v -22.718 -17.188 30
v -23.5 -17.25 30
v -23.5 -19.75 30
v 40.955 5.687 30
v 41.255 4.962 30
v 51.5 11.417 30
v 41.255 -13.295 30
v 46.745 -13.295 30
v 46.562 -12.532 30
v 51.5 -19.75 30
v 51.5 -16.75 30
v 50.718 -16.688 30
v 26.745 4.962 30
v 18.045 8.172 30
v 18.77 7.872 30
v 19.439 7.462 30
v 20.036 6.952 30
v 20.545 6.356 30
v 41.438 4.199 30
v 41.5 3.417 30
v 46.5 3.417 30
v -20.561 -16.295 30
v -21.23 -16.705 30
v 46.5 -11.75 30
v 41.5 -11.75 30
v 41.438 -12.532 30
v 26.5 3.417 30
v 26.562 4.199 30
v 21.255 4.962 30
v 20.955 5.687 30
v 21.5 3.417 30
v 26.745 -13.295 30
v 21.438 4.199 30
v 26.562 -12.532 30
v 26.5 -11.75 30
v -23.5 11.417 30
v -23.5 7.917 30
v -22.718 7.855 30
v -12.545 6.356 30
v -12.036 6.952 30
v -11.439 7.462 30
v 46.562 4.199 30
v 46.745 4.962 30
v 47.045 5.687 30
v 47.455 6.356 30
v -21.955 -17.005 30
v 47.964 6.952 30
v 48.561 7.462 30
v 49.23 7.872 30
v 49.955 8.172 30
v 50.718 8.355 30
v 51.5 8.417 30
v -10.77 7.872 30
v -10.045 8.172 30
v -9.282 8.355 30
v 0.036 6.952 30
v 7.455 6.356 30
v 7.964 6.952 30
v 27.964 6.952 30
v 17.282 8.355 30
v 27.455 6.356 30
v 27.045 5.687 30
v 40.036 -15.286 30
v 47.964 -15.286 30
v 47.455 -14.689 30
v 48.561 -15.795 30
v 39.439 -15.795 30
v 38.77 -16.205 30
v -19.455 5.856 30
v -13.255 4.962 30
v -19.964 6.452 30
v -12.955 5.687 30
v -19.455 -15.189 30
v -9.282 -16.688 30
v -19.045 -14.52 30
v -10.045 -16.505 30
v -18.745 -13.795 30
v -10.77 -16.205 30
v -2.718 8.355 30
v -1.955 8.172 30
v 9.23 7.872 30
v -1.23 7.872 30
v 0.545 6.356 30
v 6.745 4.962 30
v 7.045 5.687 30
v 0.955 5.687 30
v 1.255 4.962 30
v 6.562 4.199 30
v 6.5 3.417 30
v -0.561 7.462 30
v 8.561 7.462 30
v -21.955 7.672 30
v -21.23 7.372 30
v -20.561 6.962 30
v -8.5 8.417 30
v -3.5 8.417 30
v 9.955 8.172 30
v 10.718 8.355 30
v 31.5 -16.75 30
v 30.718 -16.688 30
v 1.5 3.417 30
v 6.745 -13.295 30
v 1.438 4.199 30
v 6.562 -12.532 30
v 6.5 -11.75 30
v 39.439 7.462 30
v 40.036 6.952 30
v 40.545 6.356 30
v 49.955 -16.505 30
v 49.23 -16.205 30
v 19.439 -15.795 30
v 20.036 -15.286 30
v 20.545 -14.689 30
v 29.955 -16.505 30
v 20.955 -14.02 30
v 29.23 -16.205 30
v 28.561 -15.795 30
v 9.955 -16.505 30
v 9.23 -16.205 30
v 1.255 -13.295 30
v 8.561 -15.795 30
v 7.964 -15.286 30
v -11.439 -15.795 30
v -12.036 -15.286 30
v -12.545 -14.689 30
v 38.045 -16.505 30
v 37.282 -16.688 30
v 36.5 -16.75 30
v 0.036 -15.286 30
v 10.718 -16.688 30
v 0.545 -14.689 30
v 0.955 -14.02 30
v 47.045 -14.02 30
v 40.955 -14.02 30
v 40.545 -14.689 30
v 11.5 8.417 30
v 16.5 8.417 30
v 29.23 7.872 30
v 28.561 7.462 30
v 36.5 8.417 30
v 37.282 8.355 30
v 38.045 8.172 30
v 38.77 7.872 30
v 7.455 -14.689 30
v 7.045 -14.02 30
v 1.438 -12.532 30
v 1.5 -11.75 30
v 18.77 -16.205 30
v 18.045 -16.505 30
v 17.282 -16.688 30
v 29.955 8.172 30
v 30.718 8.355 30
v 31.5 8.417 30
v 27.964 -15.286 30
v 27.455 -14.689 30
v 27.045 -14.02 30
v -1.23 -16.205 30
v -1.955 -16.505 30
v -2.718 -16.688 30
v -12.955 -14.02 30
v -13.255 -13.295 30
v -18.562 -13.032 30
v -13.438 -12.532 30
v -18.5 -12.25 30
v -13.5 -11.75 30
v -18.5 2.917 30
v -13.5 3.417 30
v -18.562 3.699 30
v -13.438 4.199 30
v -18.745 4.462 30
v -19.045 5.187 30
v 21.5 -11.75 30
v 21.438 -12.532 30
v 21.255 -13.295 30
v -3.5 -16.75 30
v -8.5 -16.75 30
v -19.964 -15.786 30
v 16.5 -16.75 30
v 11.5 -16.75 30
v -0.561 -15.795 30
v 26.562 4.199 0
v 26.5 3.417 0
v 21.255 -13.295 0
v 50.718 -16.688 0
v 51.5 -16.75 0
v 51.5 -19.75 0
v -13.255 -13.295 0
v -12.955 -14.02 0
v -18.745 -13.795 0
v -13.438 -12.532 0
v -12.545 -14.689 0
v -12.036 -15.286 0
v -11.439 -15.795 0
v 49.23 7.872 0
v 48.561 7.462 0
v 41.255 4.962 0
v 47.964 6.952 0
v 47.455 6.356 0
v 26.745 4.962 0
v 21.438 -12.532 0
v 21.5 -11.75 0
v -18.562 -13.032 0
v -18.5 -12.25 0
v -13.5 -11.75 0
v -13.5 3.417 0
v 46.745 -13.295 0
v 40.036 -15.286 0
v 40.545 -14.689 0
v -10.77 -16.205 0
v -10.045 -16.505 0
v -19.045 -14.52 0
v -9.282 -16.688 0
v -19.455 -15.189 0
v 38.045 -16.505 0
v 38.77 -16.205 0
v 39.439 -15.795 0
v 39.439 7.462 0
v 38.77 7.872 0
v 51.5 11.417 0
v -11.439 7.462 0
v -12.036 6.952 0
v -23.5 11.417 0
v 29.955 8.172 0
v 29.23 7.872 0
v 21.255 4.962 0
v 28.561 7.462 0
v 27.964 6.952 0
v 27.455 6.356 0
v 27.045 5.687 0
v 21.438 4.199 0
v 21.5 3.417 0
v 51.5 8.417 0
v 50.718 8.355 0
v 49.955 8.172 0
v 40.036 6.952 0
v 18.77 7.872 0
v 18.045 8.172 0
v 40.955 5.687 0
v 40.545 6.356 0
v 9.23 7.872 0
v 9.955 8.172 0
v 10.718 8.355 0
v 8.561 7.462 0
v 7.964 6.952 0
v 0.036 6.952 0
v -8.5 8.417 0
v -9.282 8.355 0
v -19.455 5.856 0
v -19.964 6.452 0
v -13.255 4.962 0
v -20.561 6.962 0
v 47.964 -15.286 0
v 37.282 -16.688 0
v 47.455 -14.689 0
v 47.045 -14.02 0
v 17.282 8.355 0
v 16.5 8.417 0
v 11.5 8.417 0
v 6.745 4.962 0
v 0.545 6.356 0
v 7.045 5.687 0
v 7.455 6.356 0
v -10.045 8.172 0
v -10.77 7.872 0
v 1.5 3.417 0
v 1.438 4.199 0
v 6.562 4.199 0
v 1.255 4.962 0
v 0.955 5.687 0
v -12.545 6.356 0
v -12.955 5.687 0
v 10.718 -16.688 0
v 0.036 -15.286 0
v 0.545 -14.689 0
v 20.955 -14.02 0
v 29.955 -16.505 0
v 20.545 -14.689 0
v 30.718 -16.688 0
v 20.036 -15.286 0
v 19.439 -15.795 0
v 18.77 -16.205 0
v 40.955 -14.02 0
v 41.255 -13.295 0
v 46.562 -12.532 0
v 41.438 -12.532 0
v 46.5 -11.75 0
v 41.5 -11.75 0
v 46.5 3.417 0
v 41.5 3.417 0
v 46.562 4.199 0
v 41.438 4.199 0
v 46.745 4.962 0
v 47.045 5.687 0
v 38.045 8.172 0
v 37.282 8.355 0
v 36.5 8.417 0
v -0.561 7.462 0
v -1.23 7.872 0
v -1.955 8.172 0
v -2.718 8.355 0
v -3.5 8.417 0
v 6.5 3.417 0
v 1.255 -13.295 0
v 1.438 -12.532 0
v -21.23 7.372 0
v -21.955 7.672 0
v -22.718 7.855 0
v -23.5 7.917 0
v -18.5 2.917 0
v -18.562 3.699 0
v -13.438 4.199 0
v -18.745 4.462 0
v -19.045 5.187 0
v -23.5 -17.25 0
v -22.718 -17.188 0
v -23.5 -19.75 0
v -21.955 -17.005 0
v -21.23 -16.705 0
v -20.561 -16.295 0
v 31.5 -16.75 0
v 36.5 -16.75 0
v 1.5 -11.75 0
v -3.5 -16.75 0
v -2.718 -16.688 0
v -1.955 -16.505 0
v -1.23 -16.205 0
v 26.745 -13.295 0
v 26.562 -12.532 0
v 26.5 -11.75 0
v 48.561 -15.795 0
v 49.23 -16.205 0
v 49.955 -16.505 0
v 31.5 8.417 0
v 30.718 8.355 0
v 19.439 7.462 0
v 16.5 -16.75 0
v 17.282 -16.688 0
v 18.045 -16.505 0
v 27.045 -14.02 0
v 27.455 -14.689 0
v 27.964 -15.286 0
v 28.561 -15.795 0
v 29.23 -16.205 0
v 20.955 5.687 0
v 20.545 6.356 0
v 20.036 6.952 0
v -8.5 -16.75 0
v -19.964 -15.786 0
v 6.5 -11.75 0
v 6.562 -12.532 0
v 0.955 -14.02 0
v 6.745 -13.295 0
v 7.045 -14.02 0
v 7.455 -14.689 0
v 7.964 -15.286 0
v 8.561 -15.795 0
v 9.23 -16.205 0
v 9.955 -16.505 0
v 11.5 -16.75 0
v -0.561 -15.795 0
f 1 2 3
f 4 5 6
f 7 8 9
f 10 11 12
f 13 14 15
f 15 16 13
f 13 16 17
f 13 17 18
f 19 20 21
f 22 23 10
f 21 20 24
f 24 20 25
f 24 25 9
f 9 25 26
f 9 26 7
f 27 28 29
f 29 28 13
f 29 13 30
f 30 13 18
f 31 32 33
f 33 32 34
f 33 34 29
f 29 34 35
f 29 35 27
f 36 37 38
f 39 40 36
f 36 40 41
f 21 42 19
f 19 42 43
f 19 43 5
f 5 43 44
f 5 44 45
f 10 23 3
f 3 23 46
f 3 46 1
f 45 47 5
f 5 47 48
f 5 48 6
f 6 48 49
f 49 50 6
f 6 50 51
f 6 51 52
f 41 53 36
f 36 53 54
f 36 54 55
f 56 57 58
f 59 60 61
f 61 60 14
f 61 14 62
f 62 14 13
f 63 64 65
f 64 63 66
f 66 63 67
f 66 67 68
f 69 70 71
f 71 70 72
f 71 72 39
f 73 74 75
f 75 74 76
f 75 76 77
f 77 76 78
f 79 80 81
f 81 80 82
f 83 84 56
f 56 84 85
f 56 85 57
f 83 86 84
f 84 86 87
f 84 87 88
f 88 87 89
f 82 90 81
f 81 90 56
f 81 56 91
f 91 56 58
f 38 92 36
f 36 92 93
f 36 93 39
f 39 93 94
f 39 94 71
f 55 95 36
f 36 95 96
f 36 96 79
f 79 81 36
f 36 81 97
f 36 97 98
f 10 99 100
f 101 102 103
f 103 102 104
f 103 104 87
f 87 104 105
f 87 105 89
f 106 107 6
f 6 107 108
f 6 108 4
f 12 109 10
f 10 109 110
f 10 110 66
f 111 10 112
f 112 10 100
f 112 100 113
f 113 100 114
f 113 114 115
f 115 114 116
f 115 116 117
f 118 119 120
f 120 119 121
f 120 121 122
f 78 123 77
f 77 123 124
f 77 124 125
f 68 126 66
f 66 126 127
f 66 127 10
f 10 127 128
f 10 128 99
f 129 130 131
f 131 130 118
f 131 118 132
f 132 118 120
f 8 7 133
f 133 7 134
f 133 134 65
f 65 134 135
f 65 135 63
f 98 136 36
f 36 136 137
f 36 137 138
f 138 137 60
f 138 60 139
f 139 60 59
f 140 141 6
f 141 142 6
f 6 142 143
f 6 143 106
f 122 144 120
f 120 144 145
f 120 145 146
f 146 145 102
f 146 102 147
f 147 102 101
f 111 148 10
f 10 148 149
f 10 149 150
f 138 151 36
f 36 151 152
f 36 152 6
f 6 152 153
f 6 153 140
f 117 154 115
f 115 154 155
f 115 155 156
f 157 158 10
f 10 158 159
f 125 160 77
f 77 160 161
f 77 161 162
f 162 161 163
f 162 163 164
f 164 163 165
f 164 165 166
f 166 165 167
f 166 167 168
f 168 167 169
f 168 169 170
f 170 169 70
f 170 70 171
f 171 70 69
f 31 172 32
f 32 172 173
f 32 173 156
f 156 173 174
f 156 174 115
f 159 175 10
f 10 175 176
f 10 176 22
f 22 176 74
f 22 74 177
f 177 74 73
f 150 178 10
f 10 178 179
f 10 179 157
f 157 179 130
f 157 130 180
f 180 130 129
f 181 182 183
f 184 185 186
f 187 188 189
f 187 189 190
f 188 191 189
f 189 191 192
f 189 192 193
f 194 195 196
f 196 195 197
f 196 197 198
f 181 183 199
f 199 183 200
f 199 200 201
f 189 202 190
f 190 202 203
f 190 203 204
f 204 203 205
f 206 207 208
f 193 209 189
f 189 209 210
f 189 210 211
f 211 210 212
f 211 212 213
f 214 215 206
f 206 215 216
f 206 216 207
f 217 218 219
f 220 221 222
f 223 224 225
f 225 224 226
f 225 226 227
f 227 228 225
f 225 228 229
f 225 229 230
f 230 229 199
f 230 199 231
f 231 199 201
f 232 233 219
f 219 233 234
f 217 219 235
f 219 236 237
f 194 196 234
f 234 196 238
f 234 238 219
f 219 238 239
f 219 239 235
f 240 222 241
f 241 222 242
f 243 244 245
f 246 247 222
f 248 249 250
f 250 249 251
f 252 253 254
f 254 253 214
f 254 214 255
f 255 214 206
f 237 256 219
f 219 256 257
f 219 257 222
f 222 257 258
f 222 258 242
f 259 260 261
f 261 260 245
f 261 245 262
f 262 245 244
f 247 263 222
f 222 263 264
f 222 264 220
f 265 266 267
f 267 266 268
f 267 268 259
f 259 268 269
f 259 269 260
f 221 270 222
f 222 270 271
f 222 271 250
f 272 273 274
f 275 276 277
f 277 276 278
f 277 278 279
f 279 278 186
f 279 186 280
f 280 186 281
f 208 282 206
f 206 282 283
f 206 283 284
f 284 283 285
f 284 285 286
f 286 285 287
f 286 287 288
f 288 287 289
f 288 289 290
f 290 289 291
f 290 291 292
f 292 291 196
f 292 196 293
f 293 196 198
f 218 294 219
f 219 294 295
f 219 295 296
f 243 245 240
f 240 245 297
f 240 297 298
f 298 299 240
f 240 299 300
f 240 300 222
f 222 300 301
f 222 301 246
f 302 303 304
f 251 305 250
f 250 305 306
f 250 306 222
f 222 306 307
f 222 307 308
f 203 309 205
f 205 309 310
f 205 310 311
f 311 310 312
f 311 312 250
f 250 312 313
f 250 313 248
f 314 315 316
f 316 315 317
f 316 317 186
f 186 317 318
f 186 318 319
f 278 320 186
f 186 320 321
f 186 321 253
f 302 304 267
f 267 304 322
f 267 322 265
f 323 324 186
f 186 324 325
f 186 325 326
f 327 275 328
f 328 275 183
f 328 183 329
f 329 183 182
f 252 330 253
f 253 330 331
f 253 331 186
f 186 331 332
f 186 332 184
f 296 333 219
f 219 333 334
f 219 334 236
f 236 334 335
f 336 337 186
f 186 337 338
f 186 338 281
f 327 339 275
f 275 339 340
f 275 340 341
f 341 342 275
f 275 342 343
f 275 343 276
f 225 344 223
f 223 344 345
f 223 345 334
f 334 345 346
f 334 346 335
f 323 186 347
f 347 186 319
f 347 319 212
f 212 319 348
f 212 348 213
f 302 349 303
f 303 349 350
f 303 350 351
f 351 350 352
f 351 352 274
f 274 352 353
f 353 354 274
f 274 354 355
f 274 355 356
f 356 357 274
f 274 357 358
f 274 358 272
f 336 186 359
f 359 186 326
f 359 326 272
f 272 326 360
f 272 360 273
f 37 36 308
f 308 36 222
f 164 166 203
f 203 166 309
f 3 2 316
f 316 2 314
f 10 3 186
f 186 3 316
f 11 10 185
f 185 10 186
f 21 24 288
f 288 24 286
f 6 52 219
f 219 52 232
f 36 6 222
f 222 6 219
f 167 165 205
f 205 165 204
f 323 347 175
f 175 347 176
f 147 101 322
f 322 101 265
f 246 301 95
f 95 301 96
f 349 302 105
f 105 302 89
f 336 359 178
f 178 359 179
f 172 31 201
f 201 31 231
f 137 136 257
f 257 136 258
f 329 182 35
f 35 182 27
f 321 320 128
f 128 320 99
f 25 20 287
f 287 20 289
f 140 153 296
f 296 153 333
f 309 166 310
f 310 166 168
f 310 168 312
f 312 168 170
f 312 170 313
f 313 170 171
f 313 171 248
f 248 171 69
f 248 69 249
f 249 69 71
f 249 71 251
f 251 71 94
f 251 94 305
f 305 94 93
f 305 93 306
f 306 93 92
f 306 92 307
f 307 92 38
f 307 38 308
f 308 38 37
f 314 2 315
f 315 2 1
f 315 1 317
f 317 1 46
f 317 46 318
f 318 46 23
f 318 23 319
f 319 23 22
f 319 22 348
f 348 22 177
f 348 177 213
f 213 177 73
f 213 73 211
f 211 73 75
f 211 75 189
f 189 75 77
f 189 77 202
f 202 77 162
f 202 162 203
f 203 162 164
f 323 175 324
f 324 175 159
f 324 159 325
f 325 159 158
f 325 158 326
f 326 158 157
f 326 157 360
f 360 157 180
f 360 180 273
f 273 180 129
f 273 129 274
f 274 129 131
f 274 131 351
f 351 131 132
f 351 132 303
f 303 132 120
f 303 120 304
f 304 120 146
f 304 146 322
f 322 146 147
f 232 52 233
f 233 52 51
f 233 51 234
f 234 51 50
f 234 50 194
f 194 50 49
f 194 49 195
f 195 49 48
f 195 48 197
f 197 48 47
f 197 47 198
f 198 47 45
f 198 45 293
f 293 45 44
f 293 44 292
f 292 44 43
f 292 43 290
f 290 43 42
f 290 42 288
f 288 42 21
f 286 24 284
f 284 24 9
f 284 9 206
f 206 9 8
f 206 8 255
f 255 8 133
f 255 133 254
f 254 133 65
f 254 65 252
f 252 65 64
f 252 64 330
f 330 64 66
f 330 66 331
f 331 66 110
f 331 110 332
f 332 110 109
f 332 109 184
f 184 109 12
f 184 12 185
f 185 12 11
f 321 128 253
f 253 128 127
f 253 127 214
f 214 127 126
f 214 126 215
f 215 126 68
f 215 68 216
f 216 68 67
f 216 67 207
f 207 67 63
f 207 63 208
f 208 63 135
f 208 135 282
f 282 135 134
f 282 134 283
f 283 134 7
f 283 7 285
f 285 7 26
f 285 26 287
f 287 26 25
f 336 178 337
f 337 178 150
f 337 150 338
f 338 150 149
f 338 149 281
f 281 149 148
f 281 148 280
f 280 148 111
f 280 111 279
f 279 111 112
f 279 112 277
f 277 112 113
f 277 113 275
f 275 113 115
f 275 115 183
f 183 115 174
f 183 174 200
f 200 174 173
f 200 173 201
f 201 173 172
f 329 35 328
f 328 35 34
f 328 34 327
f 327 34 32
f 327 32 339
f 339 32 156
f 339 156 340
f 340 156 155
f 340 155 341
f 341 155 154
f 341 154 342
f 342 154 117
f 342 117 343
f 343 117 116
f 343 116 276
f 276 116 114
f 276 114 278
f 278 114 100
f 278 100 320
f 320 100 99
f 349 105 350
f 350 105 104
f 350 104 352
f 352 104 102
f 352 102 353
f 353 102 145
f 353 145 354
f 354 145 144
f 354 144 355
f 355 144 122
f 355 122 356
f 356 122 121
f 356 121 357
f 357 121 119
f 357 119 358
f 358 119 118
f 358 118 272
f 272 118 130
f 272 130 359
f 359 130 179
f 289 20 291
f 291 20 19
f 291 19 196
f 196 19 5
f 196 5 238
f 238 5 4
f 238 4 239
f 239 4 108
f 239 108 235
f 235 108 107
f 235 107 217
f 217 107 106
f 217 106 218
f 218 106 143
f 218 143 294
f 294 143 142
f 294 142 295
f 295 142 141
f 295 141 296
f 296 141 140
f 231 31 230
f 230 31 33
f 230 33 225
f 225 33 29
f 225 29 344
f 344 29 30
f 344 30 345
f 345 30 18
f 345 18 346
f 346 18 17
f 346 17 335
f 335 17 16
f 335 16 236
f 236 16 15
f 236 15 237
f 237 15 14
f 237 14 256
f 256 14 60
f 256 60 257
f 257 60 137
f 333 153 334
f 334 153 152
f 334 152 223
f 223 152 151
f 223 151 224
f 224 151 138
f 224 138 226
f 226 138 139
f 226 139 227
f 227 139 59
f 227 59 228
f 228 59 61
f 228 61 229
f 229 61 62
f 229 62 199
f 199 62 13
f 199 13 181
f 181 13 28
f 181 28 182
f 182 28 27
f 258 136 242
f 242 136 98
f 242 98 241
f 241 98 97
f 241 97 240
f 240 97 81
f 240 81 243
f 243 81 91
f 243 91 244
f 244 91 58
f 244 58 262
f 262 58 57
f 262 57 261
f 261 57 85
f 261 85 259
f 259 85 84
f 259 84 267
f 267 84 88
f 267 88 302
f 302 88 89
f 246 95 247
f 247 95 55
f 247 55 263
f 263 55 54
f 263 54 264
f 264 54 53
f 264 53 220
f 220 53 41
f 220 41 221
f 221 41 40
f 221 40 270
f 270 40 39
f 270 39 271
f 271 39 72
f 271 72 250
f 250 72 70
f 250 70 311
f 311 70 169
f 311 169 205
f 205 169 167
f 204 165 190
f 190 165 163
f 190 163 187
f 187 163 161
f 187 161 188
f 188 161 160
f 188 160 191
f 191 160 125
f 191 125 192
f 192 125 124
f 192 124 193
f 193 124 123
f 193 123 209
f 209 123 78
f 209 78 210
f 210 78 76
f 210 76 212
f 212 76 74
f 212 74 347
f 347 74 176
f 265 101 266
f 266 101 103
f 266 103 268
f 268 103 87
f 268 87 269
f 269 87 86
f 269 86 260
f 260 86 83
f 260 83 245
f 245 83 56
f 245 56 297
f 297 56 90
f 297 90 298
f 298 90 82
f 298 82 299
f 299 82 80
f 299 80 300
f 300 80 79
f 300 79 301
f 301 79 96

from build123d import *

# Parameters (mm, degrees)
SKETCH_1_W      = 15
SKETCH_1_H      = 25.166666667
EXTRUDE_1_DEPTH = 30
FILLET_1_R      = 5
FILLET_2_R      = 5
FILLET_3_R      = 5


with BuildPart() as part:
    # 草圖1 → 填料-伸長1 (new body)
    with BuildSketch(Plane.XY):
        Polygon((-23.5, 11.416666667), (51.5, 11.416666667), (51.5, 8.416666667), (46.5, 8.416666667), (46.5, -16.75), (51.5, -16.75), (51.5, -19.75), (-23.5, -19.75), (-23.5, -17.25), (-18.5, -17.25), (-18.5, 7.916666667), (-23.5, 7.916666667), align=None)
        with Locations((-6, -4.166666666)):
            Rectangle(SKETCH_1_W, SKETCH_1_H, mode=Mode.SUBTRACT)
        with Locations((14, -4.166666666)):
            Rectangle(SKETCH_1_W, SKETCH_1_H, mode=Mode.SUBTRACT)
        with Locations((34, -4.166666666)):
            Rectangle(SKETCH_1_W, SKETCH_1_H, mode=Mode.SUBTRACT)
    extrude(amount=EXTRUDE_1_DEPTH)

    # 圓角1
    fillet_1_edges = [part.edges().sort_by_distance(p)[0] for p in [
        (-18.5, 7.916666667, 15),
    ]]
    fillet(fillet_1_edges, radius=FILLET_1_R - 0.0001)  # a hair under: the kernel refuses the full size

    # 圓角2
    fillet_2_edges = [part.edges().sort_by_distance(p)[0] for p in [
        (-18.5, -17.25, 15),
    ]]
    fillet(fillet_2_edges, radius=FILLET_2_R - 0.0001)  # a hair under: the kernel refuses the full size

    # 圓角3
    fillet_3_edges = [part.edges().sort_by_distance(p)[0] for p in [
        (46.5, 8.416666667, 15),
        (46.5, -16.75, 15),
        (-13.5, 8.416666667, 15),
        (-13.5, -16.75, 15),
        (1.5, -16.75, 15),
        (1.5, 8.416666667, 15),
        (6.5, 8.416666667, 15),
        (6.5, -16.75, 15),
        (21.5, -16.75, 15),
        (21.5, 8.416666667, 15),
        (26.5, 8.416666667, 15),
        (26.5, -16.75, 15),
        (41.5, -16.75, 15),
        (41.5, 8.416666667, 15),
    ]]
    fillet(fillet_3_edges, radius=FILLET_3_R - 0.0001)  # a hair under: the kernel refuses the full size


solid = part.part
